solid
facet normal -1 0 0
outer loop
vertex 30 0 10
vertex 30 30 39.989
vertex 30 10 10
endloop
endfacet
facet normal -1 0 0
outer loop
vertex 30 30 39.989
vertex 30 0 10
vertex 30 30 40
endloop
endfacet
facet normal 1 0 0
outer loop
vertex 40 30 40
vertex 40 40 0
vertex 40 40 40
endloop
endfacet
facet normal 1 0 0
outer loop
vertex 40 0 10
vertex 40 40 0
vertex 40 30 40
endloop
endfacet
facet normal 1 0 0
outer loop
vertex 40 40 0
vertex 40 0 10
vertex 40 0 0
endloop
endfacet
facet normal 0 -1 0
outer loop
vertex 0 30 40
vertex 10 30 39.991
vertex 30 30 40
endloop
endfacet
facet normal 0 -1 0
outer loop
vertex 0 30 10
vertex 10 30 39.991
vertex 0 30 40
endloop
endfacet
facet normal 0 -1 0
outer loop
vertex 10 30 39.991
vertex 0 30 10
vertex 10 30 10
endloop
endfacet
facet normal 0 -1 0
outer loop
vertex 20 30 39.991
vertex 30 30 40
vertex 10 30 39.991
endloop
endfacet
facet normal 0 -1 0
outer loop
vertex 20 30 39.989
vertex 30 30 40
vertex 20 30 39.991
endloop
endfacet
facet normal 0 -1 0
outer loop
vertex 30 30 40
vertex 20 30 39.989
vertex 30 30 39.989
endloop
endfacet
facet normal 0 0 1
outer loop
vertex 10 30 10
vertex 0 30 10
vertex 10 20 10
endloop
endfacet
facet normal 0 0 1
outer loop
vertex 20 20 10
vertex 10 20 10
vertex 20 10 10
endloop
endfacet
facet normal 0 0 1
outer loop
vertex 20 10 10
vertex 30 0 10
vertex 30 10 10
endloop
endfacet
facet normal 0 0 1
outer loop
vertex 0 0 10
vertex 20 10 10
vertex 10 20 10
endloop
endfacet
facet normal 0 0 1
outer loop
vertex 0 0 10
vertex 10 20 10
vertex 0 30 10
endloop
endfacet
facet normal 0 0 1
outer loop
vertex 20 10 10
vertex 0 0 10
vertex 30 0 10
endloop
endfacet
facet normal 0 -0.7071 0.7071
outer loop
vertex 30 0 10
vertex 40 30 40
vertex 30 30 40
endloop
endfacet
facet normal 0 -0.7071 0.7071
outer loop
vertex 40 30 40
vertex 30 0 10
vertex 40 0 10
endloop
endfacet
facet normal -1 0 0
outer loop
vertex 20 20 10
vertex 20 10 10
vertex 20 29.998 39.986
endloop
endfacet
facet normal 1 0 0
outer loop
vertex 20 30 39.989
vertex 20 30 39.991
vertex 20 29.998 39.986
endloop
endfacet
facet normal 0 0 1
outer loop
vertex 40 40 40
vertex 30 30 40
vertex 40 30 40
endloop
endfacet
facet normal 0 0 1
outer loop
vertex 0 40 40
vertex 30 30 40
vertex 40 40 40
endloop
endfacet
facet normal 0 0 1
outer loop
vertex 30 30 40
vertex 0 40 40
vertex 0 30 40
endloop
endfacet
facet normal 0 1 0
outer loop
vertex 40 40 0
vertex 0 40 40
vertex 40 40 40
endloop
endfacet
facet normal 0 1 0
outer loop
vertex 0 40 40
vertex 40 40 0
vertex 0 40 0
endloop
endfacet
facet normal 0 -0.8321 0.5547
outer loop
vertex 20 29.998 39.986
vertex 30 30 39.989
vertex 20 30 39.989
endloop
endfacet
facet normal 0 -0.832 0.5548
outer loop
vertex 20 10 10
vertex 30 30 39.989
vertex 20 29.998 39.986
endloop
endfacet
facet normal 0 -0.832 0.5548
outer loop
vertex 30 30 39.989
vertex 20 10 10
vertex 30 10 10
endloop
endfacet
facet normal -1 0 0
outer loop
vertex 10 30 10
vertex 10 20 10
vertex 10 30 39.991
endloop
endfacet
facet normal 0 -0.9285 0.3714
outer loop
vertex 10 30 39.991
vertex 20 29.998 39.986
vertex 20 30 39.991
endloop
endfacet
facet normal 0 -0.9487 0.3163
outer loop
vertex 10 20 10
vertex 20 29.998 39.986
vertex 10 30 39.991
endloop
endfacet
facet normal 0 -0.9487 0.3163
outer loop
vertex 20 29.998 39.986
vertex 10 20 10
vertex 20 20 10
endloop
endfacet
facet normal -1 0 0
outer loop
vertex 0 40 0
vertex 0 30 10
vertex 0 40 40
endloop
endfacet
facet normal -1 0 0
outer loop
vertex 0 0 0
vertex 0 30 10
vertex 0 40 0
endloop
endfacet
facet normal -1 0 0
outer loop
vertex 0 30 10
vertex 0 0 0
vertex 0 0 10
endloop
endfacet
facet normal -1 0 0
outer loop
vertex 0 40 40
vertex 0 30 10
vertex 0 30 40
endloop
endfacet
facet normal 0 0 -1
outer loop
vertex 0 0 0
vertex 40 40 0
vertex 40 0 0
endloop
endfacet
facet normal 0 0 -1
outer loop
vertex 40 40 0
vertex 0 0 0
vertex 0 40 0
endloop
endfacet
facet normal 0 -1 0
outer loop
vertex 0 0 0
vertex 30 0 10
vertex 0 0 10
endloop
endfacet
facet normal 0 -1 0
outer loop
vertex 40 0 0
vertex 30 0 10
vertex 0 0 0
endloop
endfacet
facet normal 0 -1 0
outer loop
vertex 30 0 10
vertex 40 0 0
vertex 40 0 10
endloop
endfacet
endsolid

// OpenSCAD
cube([40,40,10]);
translate([0, 30, 0])
cube([40,10,40]);   
difference(){
   translate([30, 0, 10]) 
  cube([10,30,30]);  
translate([30, 0, 10])
rotate([45, 0, 0])
cube([10,50,30]);
}
difference(){
   translate([20, 10, 10]) 
  cube([10,30,30]);  
translate([20, 10, 10])
rotate([56.3, 0, 0])
cube([10,50,30]);
}

difference(){
   translate([10, 20, 10]) 
  cube([10,10,30]);  
translate([10, 20, 10])
rotate([71.56, 0, 0])
cube([10,50,30]);
}


/*


difference(){
difference(){
translate([10, 10, 0])
cube([30,30,40]);
translate([10, 10, 10])
rotate([56.3, 0, 0])
cube([30,50,40]);
}
translate([20, 10, 20])
cube([10,30,40]);
}
cube([20,40,20]);
difference(){
translate([20, 0, 0])
cube([20,40,20]);
 translate([20, 0, 0])
    rotate([45, 0, 0])
cube([20,40,20]);   
}

// cubo con plano doble inclinado
translate([20, 40, 40])
  rotate([180, 0, 270])
    difference() {
      cube([20, 20, 20], center=false);

      mirror([0,0,1]){
        rotate([35, 45, 0]){
          color([1,0.8,0]) {
            cube([28.2, 28.2, 28.2], center=false);
          }
        }
      }
    }
    


    */
  
